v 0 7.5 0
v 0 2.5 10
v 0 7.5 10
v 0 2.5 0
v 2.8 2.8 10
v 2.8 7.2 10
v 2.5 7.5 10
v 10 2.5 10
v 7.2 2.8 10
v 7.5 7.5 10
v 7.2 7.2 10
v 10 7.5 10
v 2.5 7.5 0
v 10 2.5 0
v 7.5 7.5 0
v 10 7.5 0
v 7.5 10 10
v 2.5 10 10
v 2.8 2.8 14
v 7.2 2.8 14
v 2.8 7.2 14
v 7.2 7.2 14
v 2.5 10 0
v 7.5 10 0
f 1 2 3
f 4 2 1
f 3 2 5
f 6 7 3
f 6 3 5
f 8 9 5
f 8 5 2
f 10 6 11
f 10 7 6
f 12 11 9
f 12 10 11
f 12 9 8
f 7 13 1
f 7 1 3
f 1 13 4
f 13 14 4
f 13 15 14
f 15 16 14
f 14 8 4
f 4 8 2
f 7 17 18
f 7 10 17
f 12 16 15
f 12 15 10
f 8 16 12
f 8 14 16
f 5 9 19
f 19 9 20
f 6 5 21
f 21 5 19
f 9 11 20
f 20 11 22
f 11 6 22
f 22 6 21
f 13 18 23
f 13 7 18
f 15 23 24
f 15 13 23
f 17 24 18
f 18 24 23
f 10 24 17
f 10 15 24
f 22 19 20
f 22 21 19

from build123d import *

# Parameters (mm, degrees)
BOX_W              = 10
BOX_H              = 10
BOX_DEPTH          = 10
SKETCH_W           = 4.4
SKETCH_H           = 4.4
PAD_DEPTH          = 4
PAD_FACE4_W        = 10
PAD_FACE4_H        = 10
POCKET_DEPTH       = 2.5
POCKET_FACE5_W     = 10
POCKET_FACE5_H     = 10
POCKET001_DEPTH    = 2.5
SKETCH001_W        = 5
SKETCH001_H        = 10
PAD001_DEPTH       = 10
SKETCH002_W        = 4.4
SKETCH002_H        = 4.4
PAD002_DEPTH       = 4
PAD002_FACE22_W    = 4.4
PAD002_FACE22_H    = 4.4
POCKET002_DEPTH    = 5
POCKET002_FACE16_W = 5
POCKET002_FACE16_H = 10
POCKET003_DEPTH    = 7.5


with BuildPart() as part:
    # Box → Box (new body)
    with BuildSketch(Plane.XY):
        with Locations((5, 5)):
            Rectangle(BOX_W, BOX_H)
    extrude(amount=BOX_DEPTH)

    # Sketch (on Face6 of BaseFeature) → Pad (new body)
    with BuildSketch(Plane.XY.offset(10)):
        with Locations((5, 5)):
            Rectangle(SKETCH_W, SKETCH_H)
    extrude(amount=PAD_DEPTH)

    # Pad Face4 → Pocket (cut)
    with BuildSketch(Plane(origin=(5, 10, 5), x_dir=(1, 0, 0), z_dir=(0, 1, 0))):
        Rectangle(PAD_FACE4_W, PAD_FACE4_H)
    extrude(amount=-POCKET_DEPTH, mode=Mode.SUBTRACT)

    # Pocket Face5 → Pocket001 (cut)
    with BuildSketch(Plane(origin=(5, 0, 5), x_dir=(-1, 0, 0), z_dir=(0, -1, 0))):
        Rectangle(POCKET_FACE5_W, POCKET_FACE5_H)
    extrude(amount=-POCKET001_DEPTH, mode=Mode.SUBTRACT)

    # Sketch001 (on Face3 of Pocket001) → Pad001 (join)
    with BuildSketch(Plane(origin=(0, 7.5, 0), x_dir=(-1, 0, 0), z_dir=(0, 1, 0))):
        with Locations((-5, 5)):
            Rectangle(SKETCH001_W, SKETCH001_H)
    extrude(amount=PAD001_DEPTH)

    # Sketch002 (on Face6 of Pad001) → Pad002 (join)
    with BuildSketch(Plane.XY.offset(10)):
        with Locations((5, 12.5)):
            Rectangle(SKETCH002_W, SKETCH002_H)
    extrude(amount=PAD002_DEPTH)

    # Pad002 Face22 → Pocket002 (cut)
    with BuildSketch(Plane(origin=(5, 12.5, 14), x_dir=(0, 1, 0), z_dir=(0, 0, 1))):
        Rectangle(PAD002_FACE22_W, PAD002_FACE22_H)
    extrude(amount=-POCKET002_DEPTH, mode=Mode.SUBTRACT)

    # Pocket002 Face16 → Pocket003 (cut)
    with BuildSketch(Plane(origin=(5, 17.5, 5), x_dir=(1, 0, 0), z_dir=(0, 1, 0))):
        Rectangle(POCKET002_FACE16_W, POCKET002_FACE16_H)
    extrude(amount=-POCKET003_DEPTH, mode=Mode.SUBTRACT)


solid = part.part
